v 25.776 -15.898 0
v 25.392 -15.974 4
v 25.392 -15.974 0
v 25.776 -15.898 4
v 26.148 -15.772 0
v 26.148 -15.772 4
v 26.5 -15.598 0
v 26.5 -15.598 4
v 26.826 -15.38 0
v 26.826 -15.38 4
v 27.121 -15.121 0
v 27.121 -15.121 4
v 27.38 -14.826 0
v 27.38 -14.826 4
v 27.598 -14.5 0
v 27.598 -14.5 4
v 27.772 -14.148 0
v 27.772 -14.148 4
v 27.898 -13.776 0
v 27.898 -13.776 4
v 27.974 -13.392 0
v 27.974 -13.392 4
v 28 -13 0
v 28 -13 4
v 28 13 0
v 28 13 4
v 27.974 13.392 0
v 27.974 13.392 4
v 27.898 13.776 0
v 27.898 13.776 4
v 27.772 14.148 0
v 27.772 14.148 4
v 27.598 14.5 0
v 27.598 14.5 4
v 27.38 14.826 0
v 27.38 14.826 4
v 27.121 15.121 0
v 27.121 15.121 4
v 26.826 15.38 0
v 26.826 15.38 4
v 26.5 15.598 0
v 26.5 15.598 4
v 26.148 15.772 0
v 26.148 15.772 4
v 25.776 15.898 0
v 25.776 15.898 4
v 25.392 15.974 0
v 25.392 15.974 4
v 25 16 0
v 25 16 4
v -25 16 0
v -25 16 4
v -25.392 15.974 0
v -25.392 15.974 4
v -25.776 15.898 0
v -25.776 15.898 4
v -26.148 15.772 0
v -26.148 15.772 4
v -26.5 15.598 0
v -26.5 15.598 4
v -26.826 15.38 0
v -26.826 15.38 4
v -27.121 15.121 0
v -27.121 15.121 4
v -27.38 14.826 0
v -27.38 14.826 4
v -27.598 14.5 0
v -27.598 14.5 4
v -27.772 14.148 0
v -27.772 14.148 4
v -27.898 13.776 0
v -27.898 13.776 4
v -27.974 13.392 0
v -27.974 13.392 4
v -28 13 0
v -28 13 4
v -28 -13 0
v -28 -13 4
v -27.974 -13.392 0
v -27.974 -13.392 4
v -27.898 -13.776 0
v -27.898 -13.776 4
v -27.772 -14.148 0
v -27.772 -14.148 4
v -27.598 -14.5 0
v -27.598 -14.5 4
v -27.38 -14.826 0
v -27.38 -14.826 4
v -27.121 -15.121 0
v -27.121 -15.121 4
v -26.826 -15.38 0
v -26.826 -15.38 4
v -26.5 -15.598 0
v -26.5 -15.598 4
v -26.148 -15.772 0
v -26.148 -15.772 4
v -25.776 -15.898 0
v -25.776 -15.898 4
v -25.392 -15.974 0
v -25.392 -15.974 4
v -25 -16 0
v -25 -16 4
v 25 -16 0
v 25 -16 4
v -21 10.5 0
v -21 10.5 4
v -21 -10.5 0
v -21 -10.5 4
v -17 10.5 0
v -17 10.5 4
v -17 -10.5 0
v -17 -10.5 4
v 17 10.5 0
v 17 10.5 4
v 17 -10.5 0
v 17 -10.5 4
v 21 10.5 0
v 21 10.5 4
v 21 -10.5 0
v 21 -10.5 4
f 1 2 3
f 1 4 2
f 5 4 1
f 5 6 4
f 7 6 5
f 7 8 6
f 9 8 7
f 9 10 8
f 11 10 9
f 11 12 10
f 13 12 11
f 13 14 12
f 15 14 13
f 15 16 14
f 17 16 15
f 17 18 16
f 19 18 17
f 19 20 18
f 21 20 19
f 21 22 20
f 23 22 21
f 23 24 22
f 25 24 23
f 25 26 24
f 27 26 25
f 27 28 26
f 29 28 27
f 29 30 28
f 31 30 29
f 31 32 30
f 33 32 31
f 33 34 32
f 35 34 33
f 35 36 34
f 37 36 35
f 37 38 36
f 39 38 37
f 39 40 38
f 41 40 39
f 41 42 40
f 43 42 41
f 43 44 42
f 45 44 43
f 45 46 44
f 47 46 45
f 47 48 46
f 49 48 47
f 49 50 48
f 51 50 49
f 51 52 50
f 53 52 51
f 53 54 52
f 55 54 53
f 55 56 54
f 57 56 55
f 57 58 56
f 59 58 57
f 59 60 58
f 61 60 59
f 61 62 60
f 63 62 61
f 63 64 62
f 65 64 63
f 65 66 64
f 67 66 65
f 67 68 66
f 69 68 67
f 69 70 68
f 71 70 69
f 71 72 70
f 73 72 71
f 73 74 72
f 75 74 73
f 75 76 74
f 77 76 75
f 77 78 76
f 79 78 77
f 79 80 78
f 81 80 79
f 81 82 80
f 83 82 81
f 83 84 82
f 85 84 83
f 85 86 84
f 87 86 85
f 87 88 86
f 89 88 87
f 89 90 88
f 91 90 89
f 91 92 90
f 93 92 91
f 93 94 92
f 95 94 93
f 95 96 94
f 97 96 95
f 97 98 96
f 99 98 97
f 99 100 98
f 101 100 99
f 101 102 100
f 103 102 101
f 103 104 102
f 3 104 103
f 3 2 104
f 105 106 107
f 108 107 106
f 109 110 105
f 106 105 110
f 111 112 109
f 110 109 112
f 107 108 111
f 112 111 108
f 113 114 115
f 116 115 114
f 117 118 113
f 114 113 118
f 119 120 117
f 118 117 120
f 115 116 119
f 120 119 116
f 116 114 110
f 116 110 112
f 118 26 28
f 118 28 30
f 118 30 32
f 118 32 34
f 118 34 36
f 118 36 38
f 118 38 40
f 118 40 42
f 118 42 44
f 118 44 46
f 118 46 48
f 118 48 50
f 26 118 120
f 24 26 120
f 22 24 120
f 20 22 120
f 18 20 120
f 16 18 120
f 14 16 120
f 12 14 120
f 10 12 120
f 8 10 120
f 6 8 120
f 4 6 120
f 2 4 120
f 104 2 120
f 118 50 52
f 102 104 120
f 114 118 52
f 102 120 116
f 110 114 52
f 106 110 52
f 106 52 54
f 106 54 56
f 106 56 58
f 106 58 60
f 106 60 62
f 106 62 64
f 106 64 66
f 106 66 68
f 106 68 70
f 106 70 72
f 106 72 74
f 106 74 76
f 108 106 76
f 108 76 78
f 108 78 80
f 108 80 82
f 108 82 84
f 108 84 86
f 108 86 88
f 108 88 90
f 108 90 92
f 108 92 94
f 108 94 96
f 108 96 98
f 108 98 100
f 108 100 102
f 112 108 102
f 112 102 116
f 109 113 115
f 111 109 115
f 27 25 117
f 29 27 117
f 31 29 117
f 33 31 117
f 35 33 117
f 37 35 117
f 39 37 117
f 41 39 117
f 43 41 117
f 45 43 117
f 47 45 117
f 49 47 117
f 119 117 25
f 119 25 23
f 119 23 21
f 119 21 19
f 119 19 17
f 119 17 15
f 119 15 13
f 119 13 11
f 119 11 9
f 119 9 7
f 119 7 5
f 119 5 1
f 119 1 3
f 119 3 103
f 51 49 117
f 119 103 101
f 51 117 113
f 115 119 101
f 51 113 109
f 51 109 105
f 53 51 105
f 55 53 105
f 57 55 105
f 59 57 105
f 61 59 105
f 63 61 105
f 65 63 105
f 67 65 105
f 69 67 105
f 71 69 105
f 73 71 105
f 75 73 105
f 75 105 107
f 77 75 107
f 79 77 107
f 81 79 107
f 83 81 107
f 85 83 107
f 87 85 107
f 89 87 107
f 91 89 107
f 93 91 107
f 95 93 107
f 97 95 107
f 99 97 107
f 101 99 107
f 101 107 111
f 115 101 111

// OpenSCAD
// Stage 2B test: a flat strap saddle against the STATIONARY rear bin wall.
// It does not rely on a rear lip and carries no servo load until fit is proven.
include <parameters.scad>

$fn = 48;
assert(rear_pad_width > rear_strap_slot_pitch + rear_strap_slot_width + 8);
assert(rear_pad_height > rear_strap_slot_height + 8);

module rounded_pad_2d(width, height, radius) {
    offset(r = radius)
        square([width - 2 * radius, height - 2 * radius], center = true);
}

module rear_mount_test() {
    linear_extrude(height = rear_pad_thickness)
        difference() {
            rounded_pad_2d(rear_pad_width, rear_pad_height,
                           rear_pad_corner_radius);
            for (side = [-1, 1])
                translate([side * rear_strap_slot_pitch / 2, 0])
                    square([rear_strap_slot_width, rear_strap_slot_height],
                           center = true);
        }
}

rear_mount_test();
